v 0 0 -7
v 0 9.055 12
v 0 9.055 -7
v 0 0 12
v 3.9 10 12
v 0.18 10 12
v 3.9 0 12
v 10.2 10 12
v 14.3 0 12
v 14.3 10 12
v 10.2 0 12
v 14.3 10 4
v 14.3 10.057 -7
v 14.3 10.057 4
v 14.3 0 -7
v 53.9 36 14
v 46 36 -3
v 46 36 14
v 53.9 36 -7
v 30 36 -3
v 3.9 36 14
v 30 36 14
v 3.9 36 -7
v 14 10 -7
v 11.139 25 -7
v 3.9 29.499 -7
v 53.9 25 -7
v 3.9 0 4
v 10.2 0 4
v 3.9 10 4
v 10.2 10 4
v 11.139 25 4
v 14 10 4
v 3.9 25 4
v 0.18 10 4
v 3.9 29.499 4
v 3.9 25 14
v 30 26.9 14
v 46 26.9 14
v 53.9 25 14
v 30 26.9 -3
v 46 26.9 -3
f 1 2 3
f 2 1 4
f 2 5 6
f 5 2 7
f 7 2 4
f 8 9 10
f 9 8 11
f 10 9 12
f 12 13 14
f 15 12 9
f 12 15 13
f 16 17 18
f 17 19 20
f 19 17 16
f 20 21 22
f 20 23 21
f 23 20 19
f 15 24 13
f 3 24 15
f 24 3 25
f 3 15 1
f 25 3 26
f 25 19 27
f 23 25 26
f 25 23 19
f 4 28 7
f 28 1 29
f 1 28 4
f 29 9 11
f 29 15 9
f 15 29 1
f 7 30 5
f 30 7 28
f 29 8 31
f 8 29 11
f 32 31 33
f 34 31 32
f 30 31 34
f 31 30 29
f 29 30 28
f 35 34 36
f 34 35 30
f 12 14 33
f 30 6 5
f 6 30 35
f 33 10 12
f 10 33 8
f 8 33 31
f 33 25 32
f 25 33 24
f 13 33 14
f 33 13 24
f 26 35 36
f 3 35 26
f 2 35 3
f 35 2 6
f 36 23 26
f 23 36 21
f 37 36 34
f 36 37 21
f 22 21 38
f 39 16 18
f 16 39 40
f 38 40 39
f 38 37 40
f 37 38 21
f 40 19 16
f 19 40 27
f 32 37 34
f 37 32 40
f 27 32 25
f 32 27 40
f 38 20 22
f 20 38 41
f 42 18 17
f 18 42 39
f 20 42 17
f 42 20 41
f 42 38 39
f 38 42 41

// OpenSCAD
length = 20;
glas = 6.3;

union() {
    difference() {
        translate([0, 0, -7]) {
            cube([8 + glas, 36, 19]);
        }
        
        translate([3.9, -1, 4]) {
            cube([glas, 38, 10]);
        }
        
        translate([-1, 10, 4]) {
            cube([16, 36, 12]);
        }
        
        translate([14, 10, -7.1]) {
            rotate([0, 0, 10.8]) {
                cube([10, 30, 80]);
            }
        }

        translate([-10, 10, -7.1]) {
            rotate([0, 0, -10.8]) {
                cube([10, 30, 80]);
            }
        }

    }

    difference() {
        translate([3.9, 25, -7]) {
            cube([30 + length, 11, 21]);
        }
        
        translate([10 + length, 26.9, -3]) {
            cube([16, 9.2, 50]);
        }
    }
}
